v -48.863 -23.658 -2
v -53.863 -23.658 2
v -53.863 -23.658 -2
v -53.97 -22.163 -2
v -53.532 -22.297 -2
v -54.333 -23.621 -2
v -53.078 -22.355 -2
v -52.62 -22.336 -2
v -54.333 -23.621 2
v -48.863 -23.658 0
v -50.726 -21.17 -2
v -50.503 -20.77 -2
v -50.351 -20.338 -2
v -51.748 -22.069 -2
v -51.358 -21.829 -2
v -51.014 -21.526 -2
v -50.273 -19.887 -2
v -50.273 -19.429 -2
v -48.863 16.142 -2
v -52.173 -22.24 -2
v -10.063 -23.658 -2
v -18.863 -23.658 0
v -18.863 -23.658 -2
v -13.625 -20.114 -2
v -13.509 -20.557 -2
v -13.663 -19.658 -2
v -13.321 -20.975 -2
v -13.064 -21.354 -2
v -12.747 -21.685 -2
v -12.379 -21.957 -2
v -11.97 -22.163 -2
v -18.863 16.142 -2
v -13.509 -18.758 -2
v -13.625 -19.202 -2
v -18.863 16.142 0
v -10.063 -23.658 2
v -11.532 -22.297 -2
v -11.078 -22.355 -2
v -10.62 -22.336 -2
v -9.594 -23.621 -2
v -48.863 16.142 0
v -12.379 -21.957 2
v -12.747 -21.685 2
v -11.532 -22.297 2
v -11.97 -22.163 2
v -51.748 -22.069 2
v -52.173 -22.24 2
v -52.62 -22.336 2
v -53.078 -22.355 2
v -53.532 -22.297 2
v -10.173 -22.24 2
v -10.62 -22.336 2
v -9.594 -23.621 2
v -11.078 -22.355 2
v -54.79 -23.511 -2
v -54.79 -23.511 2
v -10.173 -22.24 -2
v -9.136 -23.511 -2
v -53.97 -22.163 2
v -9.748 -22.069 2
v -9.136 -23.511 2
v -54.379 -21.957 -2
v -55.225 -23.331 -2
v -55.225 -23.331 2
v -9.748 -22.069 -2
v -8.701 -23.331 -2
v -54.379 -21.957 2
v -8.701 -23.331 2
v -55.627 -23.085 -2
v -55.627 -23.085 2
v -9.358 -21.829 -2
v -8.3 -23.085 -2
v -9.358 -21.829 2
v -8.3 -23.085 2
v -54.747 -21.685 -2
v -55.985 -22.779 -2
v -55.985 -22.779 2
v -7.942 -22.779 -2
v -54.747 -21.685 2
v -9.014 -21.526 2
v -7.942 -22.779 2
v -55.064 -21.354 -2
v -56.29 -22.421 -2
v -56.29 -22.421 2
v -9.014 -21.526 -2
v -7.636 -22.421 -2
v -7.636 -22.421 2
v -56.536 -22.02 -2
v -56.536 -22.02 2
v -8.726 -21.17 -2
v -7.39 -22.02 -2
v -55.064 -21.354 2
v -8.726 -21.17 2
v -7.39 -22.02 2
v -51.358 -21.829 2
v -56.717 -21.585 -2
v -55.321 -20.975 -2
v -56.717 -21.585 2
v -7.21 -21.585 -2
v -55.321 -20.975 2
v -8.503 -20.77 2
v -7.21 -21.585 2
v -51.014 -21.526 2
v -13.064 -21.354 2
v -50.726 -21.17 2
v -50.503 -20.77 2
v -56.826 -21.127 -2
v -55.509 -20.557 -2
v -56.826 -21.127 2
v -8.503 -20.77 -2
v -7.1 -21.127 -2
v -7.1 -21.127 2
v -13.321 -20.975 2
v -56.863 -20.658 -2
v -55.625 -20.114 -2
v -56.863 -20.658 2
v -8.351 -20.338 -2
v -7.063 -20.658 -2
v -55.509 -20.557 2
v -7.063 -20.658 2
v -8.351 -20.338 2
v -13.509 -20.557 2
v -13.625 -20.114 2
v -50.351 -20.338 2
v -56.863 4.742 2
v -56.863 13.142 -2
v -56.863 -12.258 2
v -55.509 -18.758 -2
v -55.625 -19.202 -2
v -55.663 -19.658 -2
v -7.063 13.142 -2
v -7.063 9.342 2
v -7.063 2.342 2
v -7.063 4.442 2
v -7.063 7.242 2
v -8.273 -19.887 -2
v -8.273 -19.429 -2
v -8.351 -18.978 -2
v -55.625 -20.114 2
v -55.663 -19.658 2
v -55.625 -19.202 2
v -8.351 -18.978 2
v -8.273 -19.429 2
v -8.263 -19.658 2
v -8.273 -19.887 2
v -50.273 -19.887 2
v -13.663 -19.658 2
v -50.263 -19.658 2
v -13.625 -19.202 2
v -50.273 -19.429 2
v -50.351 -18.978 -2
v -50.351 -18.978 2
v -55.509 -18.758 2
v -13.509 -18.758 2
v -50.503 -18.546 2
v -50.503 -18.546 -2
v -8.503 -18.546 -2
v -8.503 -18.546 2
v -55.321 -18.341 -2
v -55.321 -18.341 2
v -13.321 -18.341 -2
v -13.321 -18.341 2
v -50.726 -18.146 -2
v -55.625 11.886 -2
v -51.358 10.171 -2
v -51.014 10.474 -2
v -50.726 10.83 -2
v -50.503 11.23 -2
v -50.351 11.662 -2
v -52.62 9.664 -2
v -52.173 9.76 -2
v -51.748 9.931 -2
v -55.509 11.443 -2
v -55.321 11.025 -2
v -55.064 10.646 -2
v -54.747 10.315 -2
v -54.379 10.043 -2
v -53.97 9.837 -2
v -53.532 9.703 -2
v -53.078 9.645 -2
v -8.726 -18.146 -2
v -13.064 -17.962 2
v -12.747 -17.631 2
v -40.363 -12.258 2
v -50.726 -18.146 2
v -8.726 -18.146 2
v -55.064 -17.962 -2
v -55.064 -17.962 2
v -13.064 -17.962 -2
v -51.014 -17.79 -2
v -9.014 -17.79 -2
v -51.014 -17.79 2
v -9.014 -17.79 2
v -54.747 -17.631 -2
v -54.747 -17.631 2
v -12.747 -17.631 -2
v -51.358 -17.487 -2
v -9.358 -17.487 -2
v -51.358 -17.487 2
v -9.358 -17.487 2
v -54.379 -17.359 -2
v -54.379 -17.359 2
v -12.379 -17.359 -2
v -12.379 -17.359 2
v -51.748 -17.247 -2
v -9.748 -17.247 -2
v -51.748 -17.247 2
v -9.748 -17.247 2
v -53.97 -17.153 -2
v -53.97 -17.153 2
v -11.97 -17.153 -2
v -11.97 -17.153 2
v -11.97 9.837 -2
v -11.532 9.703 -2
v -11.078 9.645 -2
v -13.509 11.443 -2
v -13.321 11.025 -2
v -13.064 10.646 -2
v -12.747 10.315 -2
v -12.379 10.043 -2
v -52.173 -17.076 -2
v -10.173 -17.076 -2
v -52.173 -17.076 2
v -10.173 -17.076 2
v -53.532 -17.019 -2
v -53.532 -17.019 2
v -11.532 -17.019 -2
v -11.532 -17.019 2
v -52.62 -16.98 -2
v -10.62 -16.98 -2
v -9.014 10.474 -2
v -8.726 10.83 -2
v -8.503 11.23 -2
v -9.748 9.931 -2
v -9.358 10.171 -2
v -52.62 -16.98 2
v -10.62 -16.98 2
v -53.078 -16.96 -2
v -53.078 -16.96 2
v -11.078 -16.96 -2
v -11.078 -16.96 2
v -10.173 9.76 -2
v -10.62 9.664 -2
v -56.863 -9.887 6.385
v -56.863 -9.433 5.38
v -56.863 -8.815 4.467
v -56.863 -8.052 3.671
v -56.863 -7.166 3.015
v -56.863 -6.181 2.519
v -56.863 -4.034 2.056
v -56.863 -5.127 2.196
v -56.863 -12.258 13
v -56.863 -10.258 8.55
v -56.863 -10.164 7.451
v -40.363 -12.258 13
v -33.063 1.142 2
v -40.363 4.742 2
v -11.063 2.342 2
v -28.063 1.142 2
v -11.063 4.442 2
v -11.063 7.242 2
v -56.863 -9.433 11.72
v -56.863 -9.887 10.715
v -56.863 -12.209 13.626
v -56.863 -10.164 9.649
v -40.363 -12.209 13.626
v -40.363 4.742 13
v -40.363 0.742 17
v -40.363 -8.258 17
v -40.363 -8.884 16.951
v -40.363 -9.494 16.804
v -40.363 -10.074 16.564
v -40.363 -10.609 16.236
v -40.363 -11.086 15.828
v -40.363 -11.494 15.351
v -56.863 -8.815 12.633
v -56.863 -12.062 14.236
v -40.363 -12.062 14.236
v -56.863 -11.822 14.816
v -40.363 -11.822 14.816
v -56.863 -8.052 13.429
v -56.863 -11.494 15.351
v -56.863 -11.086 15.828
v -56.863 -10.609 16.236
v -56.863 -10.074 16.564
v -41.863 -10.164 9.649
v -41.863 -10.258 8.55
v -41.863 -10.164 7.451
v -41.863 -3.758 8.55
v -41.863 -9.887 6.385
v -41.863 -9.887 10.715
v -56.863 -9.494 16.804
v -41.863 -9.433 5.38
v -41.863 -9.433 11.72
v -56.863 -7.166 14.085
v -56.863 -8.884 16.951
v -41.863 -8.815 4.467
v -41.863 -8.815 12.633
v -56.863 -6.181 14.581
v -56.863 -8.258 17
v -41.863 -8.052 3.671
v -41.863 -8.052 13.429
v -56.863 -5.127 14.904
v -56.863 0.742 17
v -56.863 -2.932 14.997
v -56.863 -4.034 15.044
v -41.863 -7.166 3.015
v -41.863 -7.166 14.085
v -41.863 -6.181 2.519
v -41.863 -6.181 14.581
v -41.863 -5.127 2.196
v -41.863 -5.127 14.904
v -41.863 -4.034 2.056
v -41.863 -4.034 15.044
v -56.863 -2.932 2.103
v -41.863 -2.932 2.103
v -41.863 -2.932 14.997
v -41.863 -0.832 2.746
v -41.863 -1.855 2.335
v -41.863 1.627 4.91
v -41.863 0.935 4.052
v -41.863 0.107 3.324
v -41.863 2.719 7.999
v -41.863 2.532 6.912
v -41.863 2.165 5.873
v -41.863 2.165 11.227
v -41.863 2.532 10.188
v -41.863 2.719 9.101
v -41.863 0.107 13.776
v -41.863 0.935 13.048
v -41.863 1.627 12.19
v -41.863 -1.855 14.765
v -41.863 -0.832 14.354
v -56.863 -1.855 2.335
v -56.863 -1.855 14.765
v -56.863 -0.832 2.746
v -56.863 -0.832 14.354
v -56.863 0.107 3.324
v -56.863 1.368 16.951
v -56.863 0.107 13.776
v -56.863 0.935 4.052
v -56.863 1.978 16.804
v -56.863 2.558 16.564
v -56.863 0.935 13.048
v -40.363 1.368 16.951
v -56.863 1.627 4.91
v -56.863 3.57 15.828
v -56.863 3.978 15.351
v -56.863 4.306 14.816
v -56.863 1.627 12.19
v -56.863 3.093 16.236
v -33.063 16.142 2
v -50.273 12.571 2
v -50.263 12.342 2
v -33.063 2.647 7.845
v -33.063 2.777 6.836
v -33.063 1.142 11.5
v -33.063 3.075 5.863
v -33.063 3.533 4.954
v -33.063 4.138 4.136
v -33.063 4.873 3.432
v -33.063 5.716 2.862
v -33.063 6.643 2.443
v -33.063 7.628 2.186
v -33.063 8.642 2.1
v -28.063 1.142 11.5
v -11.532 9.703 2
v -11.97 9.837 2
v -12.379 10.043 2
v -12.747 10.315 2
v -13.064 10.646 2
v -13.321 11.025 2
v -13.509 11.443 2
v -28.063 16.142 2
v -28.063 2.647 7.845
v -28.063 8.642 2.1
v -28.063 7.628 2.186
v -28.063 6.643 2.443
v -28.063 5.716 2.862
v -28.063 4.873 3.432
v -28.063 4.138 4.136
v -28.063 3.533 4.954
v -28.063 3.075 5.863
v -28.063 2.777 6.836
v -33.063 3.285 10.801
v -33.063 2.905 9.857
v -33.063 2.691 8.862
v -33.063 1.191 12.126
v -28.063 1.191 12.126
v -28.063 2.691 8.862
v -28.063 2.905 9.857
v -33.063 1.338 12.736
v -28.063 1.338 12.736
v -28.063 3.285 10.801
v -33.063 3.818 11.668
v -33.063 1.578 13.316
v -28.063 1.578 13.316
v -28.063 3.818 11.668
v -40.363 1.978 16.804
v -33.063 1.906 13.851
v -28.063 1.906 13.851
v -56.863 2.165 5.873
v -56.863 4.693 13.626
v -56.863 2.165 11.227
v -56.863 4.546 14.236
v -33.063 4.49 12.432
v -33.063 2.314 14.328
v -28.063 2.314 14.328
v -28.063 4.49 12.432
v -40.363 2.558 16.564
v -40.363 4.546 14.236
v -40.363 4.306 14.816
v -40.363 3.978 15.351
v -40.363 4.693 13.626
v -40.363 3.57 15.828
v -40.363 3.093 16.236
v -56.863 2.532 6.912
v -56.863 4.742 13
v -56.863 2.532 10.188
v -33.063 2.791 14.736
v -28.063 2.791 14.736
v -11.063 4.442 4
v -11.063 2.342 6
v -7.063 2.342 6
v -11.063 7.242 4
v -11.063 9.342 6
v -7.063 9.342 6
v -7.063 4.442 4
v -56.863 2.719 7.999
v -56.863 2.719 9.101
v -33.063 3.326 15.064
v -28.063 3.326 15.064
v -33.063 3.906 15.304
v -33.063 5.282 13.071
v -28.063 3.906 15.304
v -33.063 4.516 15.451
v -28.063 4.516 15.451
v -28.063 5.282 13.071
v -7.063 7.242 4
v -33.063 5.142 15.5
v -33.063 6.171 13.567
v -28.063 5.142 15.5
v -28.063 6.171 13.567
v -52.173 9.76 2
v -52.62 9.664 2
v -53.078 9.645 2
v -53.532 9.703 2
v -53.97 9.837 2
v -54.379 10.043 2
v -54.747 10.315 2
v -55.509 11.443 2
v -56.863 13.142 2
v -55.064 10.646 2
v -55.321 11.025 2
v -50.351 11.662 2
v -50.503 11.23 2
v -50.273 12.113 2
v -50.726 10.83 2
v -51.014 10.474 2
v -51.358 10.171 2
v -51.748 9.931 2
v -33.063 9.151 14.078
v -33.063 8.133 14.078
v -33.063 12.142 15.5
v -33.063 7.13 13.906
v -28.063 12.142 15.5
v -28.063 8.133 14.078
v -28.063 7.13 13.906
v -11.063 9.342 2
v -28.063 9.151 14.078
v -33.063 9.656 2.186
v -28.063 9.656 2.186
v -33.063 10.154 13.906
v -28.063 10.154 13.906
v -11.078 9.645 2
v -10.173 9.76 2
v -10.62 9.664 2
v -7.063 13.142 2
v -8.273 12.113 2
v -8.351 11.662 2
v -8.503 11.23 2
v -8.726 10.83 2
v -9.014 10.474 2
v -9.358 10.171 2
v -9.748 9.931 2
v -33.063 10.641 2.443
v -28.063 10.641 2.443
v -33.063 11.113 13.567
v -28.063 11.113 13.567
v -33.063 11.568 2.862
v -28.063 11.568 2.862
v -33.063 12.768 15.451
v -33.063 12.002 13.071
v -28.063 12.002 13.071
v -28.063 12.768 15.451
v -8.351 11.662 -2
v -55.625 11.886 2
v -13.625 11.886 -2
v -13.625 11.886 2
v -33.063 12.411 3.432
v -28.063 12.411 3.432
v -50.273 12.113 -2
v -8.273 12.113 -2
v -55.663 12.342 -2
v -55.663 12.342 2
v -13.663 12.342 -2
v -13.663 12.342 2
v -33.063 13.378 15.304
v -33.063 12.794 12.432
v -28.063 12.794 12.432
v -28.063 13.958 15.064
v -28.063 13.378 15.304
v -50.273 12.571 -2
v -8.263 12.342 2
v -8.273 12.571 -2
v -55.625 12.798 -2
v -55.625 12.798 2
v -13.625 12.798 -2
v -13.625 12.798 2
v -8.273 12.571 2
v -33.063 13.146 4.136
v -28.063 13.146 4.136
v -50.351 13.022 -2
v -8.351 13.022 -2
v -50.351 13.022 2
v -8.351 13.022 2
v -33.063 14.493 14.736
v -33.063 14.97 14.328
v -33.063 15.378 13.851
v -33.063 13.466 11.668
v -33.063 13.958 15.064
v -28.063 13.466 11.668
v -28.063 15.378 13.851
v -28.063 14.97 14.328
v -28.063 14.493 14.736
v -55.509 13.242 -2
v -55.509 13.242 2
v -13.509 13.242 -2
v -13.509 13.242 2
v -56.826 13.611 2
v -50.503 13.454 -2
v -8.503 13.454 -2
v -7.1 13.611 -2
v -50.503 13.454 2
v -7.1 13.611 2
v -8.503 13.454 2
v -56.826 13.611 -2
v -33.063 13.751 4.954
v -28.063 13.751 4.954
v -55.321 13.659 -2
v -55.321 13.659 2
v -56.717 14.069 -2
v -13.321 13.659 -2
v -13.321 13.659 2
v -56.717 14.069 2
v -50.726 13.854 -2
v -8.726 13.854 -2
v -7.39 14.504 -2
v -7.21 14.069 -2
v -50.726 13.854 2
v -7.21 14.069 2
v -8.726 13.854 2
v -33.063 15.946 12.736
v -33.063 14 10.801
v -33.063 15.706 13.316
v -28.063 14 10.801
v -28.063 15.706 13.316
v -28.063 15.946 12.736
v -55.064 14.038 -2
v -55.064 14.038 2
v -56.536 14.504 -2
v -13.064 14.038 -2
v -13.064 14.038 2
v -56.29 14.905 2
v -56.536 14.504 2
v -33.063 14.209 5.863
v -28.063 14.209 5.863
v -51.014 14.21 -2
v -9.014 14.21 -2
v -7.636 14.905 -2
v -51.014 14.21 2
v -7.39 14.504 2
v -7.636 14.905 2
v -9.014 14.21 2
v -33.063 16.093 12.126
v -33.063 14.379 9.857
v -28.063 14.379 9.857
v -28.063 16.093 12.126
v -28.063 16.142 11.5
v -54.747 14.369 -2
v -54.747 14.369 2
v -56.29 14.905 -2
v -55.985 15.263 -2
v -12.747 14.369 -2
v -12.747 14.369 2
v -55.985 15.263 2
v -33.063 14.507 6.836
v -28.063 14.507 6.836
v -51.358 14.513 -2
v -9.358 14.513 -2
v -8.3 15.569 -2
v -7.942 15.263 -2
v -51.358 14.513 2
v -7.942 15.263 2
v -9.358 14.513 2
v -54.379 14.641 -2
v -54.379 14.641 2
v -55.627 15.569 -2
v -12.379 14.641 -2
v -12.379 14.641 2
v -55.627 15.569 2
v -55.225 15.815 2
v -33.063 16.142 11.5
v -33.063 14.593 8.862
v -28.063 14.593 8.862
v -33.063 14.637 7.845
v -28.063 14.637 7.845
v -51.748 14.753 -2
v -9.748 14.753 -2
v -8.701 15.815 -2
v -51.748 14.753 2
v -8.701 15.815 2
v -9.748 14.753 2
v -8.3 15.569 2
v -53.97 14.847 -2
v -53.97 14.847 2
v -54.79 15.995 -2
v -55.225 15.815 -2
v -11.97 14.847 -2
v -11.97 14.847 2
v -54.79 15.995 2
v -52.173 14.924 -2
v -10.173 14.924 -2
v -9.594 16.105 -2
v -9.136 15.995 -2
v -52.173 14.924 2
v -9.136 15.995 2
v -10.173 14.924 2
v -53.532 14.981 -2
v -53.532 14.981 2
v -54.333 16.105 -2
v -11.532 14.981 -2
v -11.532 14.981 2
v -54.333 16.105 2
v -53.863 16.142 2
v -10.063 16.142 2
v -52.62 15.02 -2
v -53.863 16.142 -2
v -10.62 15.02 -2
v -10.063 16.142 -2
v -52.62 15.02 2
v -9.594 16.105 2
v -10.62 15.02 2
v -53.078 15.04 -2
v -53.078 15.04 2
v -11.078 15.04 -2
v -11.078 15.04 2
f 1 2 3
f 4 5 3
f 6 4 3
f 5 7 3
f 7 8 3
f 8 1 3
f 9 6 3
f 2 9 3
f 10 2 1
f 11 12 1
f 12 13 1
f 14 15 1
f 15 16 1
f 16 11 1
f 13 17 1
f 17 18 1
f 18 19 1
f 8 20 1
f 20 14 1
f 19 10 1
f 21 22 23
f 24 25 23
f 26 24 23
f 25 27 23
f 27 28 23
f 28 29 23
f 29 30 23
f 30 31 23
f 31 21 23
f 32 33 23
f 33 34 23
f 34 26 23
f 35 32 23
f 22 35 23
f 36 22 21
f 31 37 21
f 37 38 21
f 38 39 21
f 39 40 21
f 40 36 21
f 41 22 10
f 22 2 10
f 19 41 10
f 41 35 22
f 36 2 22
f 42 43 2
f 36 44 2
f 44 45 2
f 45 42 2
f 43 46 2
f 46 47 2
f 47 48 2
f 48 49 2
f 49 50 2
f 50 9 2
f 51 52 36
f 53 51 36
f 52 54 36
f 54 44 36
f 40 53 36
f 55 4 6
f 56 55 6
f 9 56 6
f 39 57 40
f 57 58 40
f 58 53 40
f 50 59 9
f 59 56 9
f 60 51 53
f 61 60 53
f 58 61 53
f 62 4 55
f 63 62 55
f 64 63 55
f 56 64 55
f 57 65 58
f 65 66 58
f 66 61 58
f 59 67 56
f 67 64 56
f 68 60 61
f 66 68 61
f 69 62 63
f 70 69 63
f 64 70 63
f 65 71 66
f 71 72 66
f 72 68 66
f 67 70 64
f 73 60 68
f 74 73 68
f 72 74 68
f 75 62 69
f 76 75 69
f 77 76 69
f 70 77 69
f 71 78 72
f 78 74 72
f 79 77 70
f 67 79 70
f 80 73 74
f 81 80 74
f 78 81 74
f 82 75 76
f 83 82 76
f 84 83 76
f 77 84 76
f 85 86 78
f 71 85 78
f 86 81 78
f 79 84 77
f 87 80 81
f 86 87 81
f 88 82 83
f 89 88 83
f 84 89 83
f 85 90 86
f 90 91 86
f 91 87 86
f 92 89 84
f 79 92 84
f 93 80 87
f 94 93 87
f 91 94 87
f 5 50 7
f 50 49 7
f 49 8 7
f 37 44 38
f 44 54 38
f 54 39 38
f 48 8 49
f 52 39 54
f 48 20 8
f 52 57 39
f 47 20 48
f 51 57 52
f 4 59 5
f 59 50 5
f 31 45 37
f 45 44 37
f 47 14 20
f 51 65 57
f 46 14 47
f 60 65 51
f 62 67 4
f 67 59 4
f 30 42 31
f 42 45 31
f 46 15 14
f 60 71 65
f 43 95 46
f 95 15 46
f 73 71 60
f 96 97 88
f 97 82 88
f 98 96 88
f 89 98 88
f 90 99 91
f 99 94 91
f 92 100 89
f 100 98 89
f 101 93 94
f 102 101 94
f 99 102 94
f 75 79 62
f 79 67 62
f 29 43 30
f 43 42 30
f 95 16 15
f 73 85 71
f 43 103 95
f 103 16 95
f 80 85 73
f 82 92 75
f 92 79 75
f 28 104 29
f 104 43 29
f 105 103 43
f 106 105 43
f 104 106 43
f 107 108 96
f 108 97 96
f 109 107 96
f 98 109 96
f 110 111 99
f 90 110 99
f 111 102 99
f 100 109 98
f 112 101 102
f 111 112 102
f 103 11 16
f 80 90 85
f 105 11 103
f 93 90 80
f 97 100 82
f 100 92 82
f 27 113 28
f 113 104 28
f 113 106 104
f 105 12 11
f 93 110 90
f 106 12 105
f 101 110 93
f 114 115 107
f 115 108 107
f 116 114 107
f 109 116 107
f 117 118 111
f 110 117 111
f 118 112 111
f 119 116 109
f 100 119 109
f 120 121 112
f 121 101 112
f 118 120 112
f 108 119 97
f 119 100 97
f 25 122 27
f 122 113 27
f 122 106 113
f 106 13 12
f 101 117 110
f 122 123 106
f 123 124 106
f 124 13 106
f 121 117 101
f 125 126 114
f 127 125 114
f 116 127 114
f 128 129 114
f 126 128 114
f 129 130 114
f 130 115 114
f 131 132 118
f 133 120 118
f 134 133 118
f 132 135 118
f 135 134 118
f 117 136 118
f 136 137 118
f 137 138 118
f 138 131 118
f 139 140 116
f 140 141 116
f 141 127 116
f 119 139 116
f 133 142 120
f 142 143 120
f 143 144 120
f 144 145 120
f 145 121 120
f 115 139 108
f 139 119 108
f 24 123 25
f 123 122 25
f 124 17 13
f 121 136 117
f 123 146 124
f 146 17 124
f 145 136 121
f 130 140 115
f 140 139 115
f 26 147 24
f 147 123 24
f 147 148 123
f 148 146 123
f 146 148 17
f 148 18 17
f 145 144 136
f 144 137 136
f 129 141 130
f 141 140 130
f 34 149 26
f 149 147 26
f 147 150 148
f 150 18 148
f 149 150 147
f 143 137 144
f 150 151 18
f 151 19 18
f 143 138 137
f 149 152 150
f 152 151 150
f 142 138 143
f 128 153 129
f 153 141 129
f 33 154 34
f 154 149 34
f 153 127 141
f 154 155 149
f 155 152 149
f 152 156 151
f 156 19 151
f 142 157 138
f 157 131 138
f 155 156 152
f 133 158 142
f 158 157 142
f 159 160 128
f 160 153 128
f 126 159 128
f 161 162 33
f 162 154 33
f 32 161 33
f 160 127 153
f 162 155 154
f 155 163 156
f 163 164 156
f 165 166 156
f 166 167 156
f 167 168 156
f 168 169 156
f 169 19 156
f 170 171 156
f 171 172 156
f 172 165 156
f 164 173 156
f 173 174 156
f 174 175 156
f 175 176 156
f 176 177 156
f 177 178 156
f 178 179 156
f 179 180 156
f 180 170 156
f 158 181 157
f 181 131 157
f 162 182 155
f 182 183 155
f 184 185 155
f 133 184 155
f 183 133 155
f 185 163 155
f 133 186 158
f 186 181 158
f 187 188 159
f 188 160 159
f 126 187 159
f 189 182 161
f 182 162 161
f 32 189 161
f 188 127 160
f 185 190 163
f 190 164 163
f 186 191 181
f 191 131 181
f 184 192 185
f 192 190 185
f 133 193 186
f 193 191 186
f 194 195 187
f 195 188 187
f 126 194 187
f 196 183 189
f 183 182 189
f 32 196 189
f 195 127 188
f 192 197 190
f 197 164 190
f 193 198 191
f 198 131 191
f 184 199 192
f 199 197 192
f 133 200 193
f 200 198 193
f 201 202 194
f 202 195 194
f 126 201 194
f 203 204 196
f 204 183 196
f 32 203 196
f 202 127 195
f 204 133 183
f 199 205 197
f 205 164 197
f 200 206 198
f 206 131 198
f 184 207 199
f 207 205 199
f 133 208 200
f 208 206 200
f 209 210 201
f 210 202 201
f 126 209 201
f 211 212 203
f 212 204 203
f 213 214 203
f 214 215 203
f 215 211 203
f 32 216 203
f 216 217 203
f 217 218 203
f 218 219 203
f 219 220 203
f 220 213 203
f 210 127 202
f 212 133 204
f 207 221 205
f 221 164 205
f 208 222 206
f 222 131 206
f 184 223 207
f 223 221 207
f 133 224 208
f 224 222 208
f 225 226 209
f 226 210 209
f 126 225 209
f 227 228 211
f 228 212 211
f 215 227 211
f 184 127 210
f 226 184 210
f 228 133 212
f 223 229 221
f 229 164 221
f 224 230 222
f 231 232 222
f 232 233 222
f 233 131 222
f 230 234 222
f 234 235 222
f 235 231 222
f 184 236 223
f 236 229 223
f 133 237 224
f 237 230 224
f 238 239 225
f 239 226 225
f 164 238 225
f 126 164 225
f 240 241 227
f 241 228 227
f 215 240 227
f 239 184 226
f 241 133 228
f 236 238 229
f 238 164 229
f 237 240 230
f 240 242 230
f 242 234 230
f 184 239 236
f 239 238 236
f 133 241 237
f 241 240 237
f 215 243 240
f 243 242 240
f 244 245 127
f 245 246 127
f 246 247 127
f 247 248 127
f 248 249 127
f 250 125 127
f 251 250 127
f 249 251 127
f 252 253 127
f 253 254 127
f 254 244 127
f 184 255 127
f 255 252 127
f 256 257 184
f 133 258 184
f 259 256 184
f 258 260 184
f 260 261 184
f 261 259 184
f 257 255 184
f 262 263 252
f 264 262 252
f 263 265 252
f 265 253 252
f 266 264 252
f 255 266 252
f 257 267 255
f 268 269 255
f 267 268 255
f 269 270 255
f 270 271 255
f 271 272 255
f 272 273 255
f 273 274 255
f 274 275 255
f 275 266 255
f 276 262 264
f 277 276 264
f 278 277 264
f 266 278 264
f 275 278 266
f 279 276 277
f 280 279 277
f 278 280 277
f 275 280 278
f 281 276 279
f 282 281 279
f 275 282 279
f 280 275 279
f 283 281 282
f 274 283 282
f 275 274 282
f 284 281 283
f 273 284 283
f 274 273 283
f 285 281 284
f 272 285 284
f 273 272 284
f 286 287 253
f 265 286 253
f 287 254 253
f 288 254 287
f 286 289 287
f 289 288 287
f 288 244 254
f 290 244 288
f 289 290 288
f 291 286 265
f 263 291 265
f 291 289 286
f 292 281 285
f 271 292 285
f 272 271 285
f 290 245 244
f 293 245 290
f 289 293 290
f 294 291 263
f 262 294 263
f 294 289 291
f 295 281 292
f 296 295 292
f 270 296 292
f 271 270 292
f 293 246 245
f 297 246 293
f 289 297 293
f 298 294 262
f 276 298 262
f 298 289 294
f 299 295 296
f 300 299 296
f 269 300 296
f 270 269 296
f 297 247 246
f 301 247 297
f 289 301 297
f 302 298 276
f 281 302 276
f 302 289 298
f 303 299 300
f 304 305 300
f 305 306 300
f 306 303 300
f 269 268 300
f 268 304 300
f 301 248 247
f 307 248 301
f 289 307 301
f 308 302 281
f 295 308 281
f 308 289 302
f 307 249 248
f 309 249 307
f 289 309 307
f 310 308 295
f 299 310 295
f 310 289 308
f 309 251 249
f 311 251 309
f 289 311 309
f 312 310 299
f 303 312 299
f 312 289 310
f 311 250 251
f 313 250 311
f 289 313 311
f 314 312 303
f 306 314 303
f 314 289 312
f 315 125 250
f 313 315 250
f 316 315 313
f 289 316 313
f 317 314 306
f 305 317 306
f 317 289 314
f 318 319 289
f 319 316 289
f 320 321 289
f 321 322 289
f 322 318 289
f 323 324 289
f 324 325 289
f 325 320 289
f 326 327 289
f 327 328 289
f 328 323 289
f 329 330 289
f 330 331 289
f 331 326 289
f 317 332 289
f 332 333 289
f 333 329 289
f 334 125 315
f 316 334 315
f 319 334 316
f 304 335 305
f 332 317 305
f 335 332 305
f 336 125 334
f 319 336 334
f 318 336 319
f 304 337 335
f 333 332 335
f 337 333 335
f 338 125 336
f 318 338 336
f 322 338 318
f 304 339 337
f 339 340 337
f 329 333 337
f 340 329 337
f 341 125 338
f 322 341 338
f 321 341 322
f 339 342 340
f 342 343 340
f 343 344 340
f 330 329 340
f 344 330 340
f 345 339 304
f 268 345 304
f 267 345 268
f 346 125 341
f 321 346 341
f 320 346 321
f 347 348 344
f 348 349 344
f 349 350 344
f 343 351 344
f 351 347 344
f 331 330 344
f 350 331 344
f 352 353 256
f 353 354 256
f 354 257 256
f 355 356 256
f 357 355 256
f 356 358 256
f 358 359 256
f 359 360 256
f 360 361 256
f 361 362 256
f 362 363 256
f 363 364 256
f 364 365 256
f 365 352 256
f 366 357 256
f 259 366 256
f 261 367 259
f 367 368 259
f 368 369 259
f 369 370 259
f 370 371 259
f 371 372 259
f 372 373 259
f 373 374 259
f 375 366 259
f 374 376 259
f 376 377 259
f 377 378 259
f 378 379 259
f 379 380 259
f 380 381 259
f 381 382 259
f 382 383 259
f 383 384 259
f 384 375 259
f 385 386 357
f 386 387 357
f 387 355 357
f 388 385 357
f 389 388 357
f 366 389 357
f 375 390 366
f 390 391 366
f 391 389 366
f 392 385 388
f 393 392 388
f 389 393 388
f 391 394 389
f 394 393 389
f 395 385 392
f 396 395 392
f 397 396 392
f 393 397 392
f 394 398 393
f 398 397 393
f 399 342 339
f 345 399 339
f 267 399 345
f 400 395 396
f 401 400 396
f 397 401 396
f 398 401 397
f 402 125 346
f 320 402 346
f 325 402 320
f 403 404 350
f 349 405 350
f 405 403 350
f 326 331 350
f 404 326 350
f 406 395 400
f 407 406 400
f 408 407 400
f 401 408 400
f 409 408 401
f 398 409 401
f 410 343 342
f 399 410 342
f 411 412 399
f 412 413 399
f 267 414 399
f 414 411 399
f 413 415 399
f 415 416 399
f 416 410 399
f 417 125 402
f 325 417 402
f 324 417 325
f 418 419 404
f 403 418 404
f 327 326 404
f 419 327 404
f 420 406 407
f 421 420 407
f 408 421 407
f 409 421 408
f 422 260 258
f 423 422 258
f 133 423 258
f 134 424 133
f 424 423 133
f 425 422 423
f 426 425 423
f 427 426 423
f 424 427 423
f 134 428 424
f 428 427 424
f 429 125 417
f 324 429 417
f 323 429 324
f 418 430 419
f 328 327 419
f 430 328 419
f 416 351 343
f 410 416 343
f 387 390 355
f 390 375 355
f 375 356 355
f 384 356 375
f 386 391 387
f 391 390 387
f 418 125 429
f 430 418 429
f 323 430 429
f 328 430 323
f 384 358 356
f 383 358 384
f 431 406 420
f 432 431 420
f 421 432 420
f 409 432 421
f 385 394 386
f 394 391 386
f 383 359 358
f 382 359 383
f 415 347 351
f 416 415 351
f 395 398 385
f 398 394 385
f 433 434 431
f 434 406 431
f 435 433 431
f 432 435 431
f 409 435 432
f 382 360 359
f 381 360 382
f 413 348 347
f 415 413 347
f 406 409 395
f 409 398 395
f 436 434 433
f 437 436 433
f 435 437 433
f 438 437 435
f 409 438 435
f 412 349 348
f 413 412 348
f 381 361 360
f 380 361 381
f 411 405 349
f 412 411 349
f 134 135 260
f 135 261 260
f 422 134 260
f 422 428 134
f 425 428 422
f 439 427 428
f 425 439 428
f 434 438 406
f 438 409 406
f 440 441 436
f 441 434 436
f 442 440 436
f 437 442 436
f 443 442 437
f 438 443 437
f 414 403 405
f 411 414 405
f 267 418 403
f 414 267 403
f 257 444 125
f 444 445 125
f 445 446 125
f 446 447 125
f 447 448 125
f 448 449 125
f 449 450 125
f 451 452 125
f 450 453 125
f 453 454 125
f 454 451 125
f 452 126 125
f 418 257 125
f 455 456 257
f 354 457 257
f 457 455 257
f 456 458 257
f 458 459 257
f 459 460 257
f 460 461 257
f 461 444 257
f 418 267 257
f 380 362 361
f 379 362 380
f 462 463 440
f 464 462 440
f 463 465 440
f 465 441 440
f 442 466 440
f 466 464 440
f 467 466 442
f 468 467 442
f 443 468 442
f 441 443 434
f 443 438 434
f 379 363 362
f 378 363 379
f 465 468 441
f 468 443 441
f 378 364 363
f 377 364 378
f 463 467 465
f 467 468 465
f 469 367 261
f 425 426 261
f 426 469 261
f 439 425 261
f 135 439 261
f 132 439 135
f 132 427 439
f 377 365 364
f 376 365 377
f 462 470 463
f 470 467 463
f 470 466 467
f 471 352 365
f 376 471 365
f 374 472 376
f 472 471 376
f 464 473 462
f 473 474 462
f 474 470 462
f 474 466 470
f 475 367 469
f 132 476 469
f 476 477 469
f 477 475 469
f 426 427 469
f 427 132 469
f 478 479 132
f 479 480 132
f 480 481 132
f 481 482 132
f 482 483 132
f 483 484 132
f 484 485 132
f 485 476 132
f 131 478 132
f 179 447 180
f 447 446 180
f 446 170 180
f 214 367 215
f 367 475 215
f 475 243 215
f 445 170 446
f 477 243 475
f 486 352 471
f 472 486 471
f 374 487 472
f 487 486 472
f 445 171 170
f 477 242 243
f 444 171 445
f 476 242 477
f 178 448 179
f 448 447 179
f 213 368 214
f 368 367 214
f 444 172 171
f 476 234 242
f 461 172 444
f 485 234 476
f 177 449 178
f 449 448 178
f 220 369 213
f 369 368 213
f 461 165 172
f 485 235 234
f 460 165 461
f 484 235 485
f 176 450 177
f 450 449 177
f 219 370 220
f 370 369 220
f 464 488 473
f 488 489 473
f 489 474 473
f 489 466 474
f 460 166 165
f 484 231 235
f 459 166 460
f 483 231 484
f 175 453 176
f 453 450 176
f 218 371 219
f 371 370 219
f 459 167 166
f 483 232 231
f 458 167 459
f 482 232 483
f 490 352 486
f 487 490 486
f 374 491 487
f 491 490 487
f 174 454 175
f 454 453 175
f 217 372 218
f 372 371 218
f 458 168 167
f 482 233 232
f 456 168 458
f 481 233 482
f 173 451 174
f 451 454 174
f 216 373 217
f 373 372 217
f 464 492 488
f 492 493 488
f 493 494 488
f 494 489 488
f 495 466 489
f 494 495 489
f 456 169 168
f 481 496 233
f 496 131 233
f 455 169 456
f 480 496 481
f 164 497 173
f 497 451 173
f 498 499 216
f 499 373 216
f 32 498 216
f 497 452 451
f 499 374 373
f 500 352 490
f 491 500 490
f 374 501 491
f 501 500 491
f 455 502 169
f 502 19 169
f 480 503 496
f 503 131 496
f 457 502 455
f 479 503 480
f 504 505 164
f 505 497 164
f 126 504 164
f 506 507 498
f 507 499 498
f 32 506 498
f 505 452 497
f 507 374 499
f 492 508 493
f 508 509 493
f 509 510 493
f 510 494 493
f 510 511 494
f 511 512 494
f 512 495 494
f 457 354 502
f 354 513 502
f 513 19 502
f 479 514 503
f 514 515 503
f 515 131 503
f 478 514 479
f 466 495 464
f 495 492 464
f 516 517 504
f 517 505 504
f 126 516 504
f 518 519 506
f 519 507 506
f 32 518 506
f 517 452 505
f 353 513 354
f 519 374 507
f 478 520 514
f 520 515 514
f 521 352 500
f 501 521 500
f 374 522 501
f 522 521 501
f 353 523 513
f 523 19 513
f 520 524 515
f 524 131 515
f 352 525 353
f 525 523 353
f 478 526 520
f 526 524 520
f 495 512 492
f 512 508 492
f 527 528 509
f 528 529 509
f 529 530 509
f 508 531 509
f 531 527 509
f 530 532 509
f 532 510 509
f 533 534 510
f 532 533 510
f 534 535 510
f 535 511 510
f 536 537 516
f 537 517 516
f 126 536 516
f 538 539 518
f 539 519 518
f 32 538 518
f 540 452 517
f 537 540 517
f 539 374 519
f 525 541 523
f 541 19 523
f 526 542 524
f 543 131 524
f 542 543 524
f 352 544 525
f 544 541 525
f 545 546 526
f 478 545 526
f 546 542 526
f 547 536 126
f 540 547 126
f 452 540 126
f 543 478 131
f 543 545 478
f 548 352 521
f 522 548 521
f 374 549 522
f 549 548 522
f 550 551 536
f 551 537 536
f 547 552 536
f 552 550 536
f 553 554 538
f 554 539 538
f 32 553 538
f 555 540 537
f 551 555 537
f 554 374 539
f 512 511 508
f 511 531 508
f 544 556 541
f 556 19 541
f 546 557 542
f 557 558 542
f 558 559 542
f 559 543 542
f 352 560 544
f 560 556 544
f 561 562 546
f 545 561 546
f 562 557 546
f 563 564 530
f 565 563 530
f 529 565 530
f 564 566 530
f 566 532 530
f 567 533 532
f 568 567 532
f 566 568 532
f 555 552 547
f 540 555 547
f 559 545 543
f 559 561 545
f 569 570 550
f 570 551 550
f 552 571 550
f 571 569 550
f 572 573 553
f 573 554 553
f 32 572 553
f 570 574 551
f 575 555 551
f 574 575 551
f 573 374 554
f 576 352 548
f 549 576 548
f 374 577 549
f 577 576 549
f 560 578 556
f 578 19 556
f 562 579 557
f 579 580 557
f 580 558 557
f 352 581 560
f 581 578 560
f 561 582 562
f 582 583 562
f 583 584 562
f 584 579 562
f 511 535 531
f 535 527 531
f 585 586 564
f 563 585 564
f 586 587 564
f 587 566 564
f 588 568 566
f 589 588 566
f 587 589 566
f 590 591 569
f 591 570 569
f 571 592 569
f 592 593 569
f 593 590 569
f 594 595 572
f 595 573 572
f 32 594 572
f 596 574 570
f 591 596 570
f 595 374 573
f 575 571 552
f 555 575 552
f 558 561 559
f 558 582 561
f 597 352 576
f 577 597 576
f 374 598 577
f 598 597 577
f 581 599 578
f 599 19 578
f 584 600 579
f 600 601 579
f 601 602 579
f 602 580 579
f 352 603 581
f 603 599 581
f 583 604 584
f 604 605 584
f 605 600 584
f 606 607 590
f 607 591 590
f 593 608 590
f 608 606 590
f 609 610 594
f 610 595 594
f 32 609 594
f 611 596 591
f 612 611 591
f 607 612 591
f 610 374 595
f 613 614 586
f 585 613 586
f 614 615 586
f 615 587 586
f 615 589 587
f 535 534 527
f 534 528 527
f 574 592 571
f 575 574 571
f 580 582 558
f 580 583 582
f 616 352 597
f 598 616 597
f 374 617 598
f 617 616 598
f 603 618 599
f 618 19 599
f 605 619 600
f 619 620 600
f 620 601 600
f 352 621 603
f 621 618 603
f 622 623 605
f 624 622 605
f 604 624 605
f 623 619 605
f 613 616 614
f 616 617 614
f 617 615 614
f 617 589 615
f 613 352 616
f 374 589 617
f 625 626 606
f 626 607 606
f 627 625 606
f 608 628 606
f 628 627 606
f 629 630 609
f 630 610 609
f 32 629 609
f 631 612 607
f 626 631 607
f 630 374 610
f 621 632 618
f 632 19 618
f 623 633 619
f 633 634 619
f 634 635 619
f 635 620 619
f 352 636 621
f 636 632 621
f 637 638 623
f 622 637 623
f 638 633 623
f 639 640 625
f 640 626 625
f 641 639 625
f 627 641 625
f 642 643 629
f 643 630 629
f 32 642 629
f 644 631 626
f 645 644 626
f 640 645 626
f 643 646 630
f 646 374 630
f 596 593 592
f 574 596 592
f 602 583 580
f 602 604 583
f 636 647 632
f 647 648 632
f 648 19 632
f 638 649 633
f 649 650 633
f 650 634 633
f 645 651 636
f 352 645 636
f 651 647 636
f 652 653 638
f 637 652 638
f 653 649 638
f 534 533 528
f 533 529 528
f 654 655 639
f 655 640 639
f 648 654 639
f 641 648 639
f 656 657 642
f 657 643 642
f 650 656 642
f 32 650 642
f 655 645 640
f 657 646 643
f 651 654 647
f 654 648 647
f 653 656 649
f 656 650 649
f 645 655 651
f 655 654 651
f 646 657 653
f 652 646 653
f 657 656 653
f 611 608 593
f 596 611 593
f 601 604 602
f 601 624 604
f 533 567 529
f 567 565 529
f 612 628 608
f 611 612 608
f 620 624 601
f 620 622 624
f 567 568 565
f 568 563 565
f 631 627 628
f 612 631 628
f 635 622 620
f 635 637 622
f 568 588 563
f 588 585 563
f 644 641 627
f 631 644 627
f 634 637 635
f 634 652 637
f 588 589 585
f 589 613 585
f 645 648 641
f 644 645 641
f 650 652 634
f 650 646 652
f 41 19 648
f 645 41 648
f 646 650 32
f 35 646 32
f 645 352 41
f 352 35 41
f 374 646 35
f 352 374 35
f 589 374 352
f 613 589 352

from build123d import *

# Parameters (mm, degrees)
CROQUIS1_W               = 49.8
CROQUIS1_H               = 39.8
CROQUIS1_R               = 2.7
SALIENTE_EXTRUIR1_DEPTH  = 6
CORTAR_EXTRUIR1_DEPTH    = 4
SALIENTE_EXTRUIR3_DEPTH  = 3
CROQUIS5_R               = 6.35
CORTAR_EXTRUIR2_DEPTH    = 3
SALIENTE_EXTRUIR4_DEPTH  = 10
SALIENTE_EXTRUIR5_DEPTH  = 2
CORTAR_EXTRUIR3_START    = -3
CORTAR_EXTRUIR3_DEPTH    = 3
CORTAR_EXTRUIR4_DEPTH    = 4
CROQUIS10_W              = 4
CROQUIS10_H              = 7
SALIENTE_EXTRUIR6_DEPTH  = 4
CORTAR_EXTRUIR5_START    = -4
CORTAR_EXTRUIR5_DEPTH    = 4
CROQUIS16_W              = 28.958796265
CROQUIS16_H              = 47.870649268
CORTAR_EXTRUIR6_DEPTH    = 2
CROQUIS17_W              = 5
CROQUIS17_H              = 16
CORTAR_EXTRUIR7_DEPTH    = 10
CORTAR_EXTRUIR8_DEPTH    = 2
SALIENTE_EXTRUIR7_DEPTH  = 2
CROQUIS22_R              = 6.5
SALIENTE_EXTRUIR9_DEPTH  = 15
SALIENTE_EXTRUIR10_DEPTH = 1.5
CROQUIS25_W              = 5
CROQUIS25_H              = 15
SALIENTE_EXTRUIR11_DEPTH = 13.5
CORTAR_EXTRUIR9_START    = -5
CROQUIS26_R              = 6
CORTAR_EXTRUIR9_DEPTH    = 5
REDONDEO2_R              = 4
CROQUIS27_W              = 8
CROQUIS27_H              = 39.8
CROQUIS27_R              = 2.7
CROQUIS27_W_2            = 11.8
SALIENTE_EXTRUIR13_DEPTH = 2
REDONDEO3_R              = 3


with BuildPart() as part:
    # Croquis1 → Saliente-Extruir1 (new body)
    with BuildSketch(Plane.XY):
        with Locations((-31.963412372, -3.757931034)):
            Rectangle(CROQUIS1_W, CROQUIS1_H)
        with Locations((-52.963412372, 12.342068966)):
            Circle(CROQUIS1_R, mode=Mode.SUBTRACT)
        with Locations((-10.963412372, 12.342068966)):
            Circle(CROQUIS1_R, mode=Mode.SUBTRACT)
        with Locations((-10.963412372, -19.657931034)):
            Circle(CROQUIS1_R, mode=Mode.SUBTRACT)
        with Locations((-52.963412372, -19.657931034)):
            Circle(CROQUIS1_R, mode=Mode.SUBTRACT)
    extrude(amount=SALIENTE_EXTRUIR1_DEPTH)

    # Croquis2 → Cortar-Extruir1 (cut)
    with BuildSketch(Plane.XY.offset(6)):
        with BuildLine():
            Line((-49.963412372, -16.757931034), (-13.963412372, -16.757931034))
            ThreePointArc((-13.963412372, -16.757931034), (-12.54919881, -16.172144597), (-11.963412372, -14.757931034))
            Line((-11.963412372, -14.757931034), (-11.963412372, 7.242068966))
            ThreePointArc((-11.963412372, 7.242068966), (-12.54919881, 8.656282528), (-13.963412372, 9.242068966))
            Line((-13.963412372, 9.242068966), (-49.963412372, 9.242068966))
            ThreePointArc((-49.963412372, 9.242068966), (-51.377625934, 8.656282528), (-51.963412372, 7.242068966))
            Line((-51.963412372, 7.242068966), (-51.963412372, -14.757931034))
            ThreePointArc((-51.963412372, -14.757931034), (-51.377625934, -16.172144597), (-49.963412372, -16.757931034))
        make_face()
    extrude(amount=-CORTAR_EXTRUIR1_DEPTH, mode=Mode.SUBTRACT)

    # Croquis4 → Saliente-Extruir3 (add)
    with BuildSketch(Plane(origin=(0, 0, 0), x_dir=(-1, 0, 0), z_dir=(0, 0, -1))):
        with BuildLine():
            Line((56.863412372, 4.242068966), (61.863412372, 4.242068966))
            Line((61.863412372, 4.242068966), (61.863412372, -0.257931034))
            Line((61.863412372, -0.257931034), (57.863412372, -0.257931034))
            ThreePointArc((57.863412372, -0.257931034), (57.358118834, -0.294597605), (56.863412372, -0.403829068))
            Line((56.863412372, -0.403829068), (56.863412372, 4.242068966))
        make_face()
        with BuildLine():
            Line((61.863412372, -11.757931034), (56.863412372, -11.757931034))
            Line((56.863412372, -11.757931034), (56.863412372, -7.112033001))
            ThreePointArc((56.863412372, -7.112033001), (57.358118834, -7.221264464), (57.863412372, -7.257931034))
            Line((57.863412372, -7.257931034), (61.863412372, -7.257931034))
            Line((61.863412372, -7.257931034), (61.863412372, -11.757931034))
        make_face()
    extrude(amount=-SALIENTE_EXTRUIR3_DEPTH)

    # Croquis5 → Cortar-Extruir2 (cut)
    with BuildSketch(Plane.XY.offset(3)):
        with Locations((-57.863412372, -3.757931034)):
            Circle(CROQUIS5_R)
    extrude(amount=CORTAR_EXTRUIR2_DEPTH, mode=Mode.SUBTRACT)

    # Croquis6 → Saliente-Extruir4 (add)
    with BuildSketch(Plane.XY.offset(3)):
        with BuildLine():
            Line((-61.863412372, 4.242068966), (-51.963412372, 4.242068966))
            Line((-51.963412372, 4.242068966), (-48.963412372, 4.242068966))
            Line((-48.963412372, 4.242068966), (-48.963412372, -11.757931034))
            Line((-48.963412372, -11.757931034), (-51.963412372, -11.757931034))
            Line((-51.963412372, -11.757931034), (-61.863412372, -11.757931034))
            Line((-61.863412372, -11.757931034), (-61.863412372, -8.689715701))
            ThreePointArc((-61.863412372, -8.689715701), (-51.513412372, -3.757931034), (-61.863412372, 1.173853632))
            Line((-61.863412372, 1.173853632), (-61.863412372, 4.242068966))
        make_face()
    extrude(amount=SALIENTE_EXTRUIR4_DEPTH)

    # Croquis7 → Saliente-Extruir5 (add)
    with BuildSketch(Plane.XY.offset(2)):
        Polygon((-51.963412372, -3.757931034), (-51.963412372, 4.242068966), (-48.963412372, 4.242068966), (-48.963412372, -11.757931034), (-51.963412372, -11.757931034), align=None)
    extrude(amount=SALIENTE_EXTRUIR5_DEPTH)

    # Croquis8 → Cortar-Extruir3 (cut)
    with BuildSketch(Plane.XY.offset(3).offset(CORTAR_EXTRUIR3_START)):
        with BuildLine():
            Line((-56.863412372, -0.403829068), (-56.863412372, -7.112033001))
            ThreePointArc((-56.863412372, -7.112033001), (-53.509310406, -3.757931034), (-56.863412372, -0.403829068))
        make_face()
    extrude(amount=CORTAR_EXTRUIR3_DEPTH, mode=Mode.SUBTRACT)

    # Croquis9 → Cortar-Extruir4 (cut)
    with BuildSketch(Plane.XY.offset(6)):
        Polygon((-56.863412372, -11.757931034), (-56.863412372, -27.492217147), (-1.817084798, -27.492217147), (-1.817084798, 22.861833321), (-56.863412372, 22.861833321), (-56.863412372, 4.242068966), (-47.172737702, 4.242068966), (-47.172737702, -11.757931034), align=None)
    extrude(amount=-CORTAR_EXTRUIR4_DEPTH, mode=Mode.SUBTRACT)

    # Croquis10 → Saliente-Extruir6 (add)
    with BuildSketch(Plane.XY.offset(2)):
        with Locations((-9.063412372, 5.842068966)):
            Rectangle(CROQUIS10_W, CROQUIS10_H)
    extrude(amount=SALIENTE_EXTRUIR6_DEPTH)

    # Croquis11 → Cortar-Extruir5 (cut)
    with BuildSketch(Plane(origin=(-7.063412372, 0, 0), x_dir=(0, 0, -1), z_dir=(1, 0, 0)).offset(CORTAR_EXTRUIR5_START)):
        Polygon((-2, 5.842068966), (-2, 7.242068966), (-4, 7.242068966), (-4, 4.442068966), (-2, 4.442068966), align=None)
    extrude(amount=CORTAR_EXTRUIR5_DEPTH, mode=Mode.SUBTRACT)

    # Croquis16 → Cortar-Extruir6 (cut)
    with BuildSketch(Plane.XY.offset(2)):
        with Locations((-49.718694927, -6.990346687)):
            Rectangle(CROQUIS16_W, CROQUIS16_H)
    extrude(amount=CORTAR_EXTRUIR6_DEPTH, mode=Mode.SUBTRACT)


with BuildPart() as cortar_extruir6_kept_piece:
    # of the separate pieces the step leaves, the one the design keeps (cortar_extruir6_pieces_kept)
    add(part.part.solids().sort_by_distance((-56.863412372, 16.142068966, 0))[0])

    # Croquis17 → Cortar-Extruir7 (cut)
    with BuildSketch(Plane.XY.offset(2)):
        with Locations((-59.363412372, -3.757931034)):
            Rectangle(CROQUIS17_W, CROQUIS17_H)
    extrude(amount=-CORTAR_EXTRUIR7_DEPTH, mode=Mode.SUBTRACT)

    # Croquis18 → Cortar-Extruir8 (cut)
    with BuildSketch(Plane.XY.offset(2)):
        with BuildLine():
            Line((-56.863412372, -0.403829068), (-50.513412372, -0.403829068))
            ThreePointArc((-50.513412372, -0.403829068), (-47.159310406, -3.757931034), (-50.513412372, -7.112033001))
            Line((-50.513412372, -7.112033001), (-56.863412372, -7.112033001))
            Line((-56.863412372, -7.112033001), (-56.863412372, -0.403829068))
        make_face()
    extrude(amount=-CORTAR_EXTRUIR8_DEPTH, mode=Mode.SUBTRACT)

    # Croquis20 → Saliente-Extruir7 (add)
    with BuildSketch(Plane.XY.offset(2)):
        with BuildLine():
            Line((-56.863412372, -0.403829068), (-56.863412372, -7.112033001))
            Line((-56.863412372, -7.112033001), (-50.513412372, -7.112033001))
            ThreePointArc((-50.513412372, -7.112033001), (-47.159310406, -3.757931034), (-50.513412372, -0.403829068))
            Line((-50.513412372, -0.403829068), (-56.863412372, -0.403829068))
        make_face()
    extrude(amount=-SALIENTE_EXTRUIR7_DEPTH)

    # Croquis22 → Saliente-Extruir9 (add)
    with BuildSketch(Plane.ZY.offset(56.863412372)):
        with BuildLine():
            Line((2, -3.757931034), (2, 4.742068966))
            Line((2, 4.742068966), (13, 4.742068966))
            ThreePointArc((13, 4.742068966), (15.828427125, 3.57049609), (17, 0.742068966))
            Line((17, 0.742068966), (17, -8.257931034))
            ThreePointArc((17, -8.257931034), (15.828427125, -11.086358159), (13, -12.257931034))
            Line((13, -12.257931034), (2, -12.257931034))
            Line((2, -12.257931034), (2, -3.757931034))
        make_face()
        with Locations(Location((8.55, -3.757931034, 0), (0, 0, 270))):
            Circle(CROQUIS22_R, mode=Mode.SUBTRACT)
    extrude(amount=-SALIENTE_EXTRUIR9_DEPTH)

    # Croquis23 → Saliente-Extruir10 (add)
    with BuildSketch(Plane(origin=(-41.863412372, 0, 0), x_dir=(0, 0, -1), z_dir=(1, 0, 0))):
        with BuildLine():
            Line((-13, -12.257931034), (-2, -12.257931034))
            Line((-2, -12.257931034), (-2, 4.742068966))
            Line((-2, 4.742068966), (-13, 4.742068966))
            ThreePointArc((-13, 4.742068966), (-15.828427125, 3.57049609), (-17, 0.742068966))
            Line((-17, 0.742068966), (-17, -8.257931034))
            ThreePointArc((-17, -8.257931034), (-15.828427125, -11.086358159), (-13, -12.257931034))
        make_face()
    extrude(amount=SALIENTE_EXTRUIR10_DEPTH)

    # Croquis25 → Saliente-Extruir11 (add)
    with BuildSketch(Plane.XY.offset(2)):
        with Locations((-30.563412372, 8.642068966)):
            Rectangle(CROQUIS25_W, CROQUIS25_H)
    extrude(amount=SALIENTE_EXTRUIR11_DEPTH)

    # Croquis26 → Cortar-Extruir9 (cut)
    with BuildSketch(Plane(origin=(-28.063412372, 0, 0), x_dir=(0, 0, -1), z_dir=(1, 0, 0)).offset(CORTAR_EXTRUIR9_START)):
        with Locations((-8.1, 8.642068966)):
            Circle(CROQUIS26_R)
    extrude(amount=CORTAR_EXTRUIR9_DEPTH, mode=Mode.SUBTRACT)

    # Redondeo2
    redondeo2_edges = [cortar_extruir6_kept_piece.edges().sort_by_distance(p)[0] for p in [
        (-30.563412372, 1.142068966, 15.5),
        (-30.563412372, 16.142068966, 15.5),
    ]]
    fillet(redondeo2_edges, radius=REDONDEO2_R)

    # Croquis27 → Saliente-Extruir13 (add)
    # profile 1 of 2: a face of its own
    with BuildSketch(Plane(origin=(0, 0, 0), x_dir=(-1, 0, 0), z_dir=(0, 0, -1))):
        with Locations((52.863412372, -3.757931034)):
            Rectangle(CROQUIS27_W, CROQUIS27_H)
        with Locations((52.963412372, -19.657931034)):
            Circle(CROQUIS27_R, mode=Mode.SUBTRACT)
        with Locations((52.963412372, 12.342068966)):
            Circle(CROQUIS27_R, mode=Mode.SUBTRACT)
    # profile 2 of 2: a face of its own
    with BuildSketch(Plane(origin=(0, 0, 0), x_dir=(-1, 0, 0), z_dir=(0, 0, -1))):
        with Locations((12.963412372, -3.757931034)):
            Rectangle(CROQUIS27_W_2, CROQUIS27_H)
        with Locations((10.963412372, 12.342068966)):
            Circle(CROQUIS27_R, mode=Mode.SUBTRACT)
        with Locations((10.963412372, -19.657931034)):
            Circle(CROQUIS27_R, mode=Mode.SUBTRACT)
    extrude(amount=SALIENTE_EXTRUIR13_DEPTH)

    # Redondeo3
    redondeo3_edges = [cortar_extruir6_kept_piece.edges().sort_by_distance(p)[0] for p in [
        (-56.863412372, 16.142068966, 0),
        (-7.063412372, 16.142068966, 0),
        (-7.063412372, -23.657931034, 0),
        (-56.863412372, -23.657931034, 0),
    ]]
    fillet(redondeo3_edges, radius=REDONDEO3_R)


solid = cortar_extruir6_kept_piece.part
